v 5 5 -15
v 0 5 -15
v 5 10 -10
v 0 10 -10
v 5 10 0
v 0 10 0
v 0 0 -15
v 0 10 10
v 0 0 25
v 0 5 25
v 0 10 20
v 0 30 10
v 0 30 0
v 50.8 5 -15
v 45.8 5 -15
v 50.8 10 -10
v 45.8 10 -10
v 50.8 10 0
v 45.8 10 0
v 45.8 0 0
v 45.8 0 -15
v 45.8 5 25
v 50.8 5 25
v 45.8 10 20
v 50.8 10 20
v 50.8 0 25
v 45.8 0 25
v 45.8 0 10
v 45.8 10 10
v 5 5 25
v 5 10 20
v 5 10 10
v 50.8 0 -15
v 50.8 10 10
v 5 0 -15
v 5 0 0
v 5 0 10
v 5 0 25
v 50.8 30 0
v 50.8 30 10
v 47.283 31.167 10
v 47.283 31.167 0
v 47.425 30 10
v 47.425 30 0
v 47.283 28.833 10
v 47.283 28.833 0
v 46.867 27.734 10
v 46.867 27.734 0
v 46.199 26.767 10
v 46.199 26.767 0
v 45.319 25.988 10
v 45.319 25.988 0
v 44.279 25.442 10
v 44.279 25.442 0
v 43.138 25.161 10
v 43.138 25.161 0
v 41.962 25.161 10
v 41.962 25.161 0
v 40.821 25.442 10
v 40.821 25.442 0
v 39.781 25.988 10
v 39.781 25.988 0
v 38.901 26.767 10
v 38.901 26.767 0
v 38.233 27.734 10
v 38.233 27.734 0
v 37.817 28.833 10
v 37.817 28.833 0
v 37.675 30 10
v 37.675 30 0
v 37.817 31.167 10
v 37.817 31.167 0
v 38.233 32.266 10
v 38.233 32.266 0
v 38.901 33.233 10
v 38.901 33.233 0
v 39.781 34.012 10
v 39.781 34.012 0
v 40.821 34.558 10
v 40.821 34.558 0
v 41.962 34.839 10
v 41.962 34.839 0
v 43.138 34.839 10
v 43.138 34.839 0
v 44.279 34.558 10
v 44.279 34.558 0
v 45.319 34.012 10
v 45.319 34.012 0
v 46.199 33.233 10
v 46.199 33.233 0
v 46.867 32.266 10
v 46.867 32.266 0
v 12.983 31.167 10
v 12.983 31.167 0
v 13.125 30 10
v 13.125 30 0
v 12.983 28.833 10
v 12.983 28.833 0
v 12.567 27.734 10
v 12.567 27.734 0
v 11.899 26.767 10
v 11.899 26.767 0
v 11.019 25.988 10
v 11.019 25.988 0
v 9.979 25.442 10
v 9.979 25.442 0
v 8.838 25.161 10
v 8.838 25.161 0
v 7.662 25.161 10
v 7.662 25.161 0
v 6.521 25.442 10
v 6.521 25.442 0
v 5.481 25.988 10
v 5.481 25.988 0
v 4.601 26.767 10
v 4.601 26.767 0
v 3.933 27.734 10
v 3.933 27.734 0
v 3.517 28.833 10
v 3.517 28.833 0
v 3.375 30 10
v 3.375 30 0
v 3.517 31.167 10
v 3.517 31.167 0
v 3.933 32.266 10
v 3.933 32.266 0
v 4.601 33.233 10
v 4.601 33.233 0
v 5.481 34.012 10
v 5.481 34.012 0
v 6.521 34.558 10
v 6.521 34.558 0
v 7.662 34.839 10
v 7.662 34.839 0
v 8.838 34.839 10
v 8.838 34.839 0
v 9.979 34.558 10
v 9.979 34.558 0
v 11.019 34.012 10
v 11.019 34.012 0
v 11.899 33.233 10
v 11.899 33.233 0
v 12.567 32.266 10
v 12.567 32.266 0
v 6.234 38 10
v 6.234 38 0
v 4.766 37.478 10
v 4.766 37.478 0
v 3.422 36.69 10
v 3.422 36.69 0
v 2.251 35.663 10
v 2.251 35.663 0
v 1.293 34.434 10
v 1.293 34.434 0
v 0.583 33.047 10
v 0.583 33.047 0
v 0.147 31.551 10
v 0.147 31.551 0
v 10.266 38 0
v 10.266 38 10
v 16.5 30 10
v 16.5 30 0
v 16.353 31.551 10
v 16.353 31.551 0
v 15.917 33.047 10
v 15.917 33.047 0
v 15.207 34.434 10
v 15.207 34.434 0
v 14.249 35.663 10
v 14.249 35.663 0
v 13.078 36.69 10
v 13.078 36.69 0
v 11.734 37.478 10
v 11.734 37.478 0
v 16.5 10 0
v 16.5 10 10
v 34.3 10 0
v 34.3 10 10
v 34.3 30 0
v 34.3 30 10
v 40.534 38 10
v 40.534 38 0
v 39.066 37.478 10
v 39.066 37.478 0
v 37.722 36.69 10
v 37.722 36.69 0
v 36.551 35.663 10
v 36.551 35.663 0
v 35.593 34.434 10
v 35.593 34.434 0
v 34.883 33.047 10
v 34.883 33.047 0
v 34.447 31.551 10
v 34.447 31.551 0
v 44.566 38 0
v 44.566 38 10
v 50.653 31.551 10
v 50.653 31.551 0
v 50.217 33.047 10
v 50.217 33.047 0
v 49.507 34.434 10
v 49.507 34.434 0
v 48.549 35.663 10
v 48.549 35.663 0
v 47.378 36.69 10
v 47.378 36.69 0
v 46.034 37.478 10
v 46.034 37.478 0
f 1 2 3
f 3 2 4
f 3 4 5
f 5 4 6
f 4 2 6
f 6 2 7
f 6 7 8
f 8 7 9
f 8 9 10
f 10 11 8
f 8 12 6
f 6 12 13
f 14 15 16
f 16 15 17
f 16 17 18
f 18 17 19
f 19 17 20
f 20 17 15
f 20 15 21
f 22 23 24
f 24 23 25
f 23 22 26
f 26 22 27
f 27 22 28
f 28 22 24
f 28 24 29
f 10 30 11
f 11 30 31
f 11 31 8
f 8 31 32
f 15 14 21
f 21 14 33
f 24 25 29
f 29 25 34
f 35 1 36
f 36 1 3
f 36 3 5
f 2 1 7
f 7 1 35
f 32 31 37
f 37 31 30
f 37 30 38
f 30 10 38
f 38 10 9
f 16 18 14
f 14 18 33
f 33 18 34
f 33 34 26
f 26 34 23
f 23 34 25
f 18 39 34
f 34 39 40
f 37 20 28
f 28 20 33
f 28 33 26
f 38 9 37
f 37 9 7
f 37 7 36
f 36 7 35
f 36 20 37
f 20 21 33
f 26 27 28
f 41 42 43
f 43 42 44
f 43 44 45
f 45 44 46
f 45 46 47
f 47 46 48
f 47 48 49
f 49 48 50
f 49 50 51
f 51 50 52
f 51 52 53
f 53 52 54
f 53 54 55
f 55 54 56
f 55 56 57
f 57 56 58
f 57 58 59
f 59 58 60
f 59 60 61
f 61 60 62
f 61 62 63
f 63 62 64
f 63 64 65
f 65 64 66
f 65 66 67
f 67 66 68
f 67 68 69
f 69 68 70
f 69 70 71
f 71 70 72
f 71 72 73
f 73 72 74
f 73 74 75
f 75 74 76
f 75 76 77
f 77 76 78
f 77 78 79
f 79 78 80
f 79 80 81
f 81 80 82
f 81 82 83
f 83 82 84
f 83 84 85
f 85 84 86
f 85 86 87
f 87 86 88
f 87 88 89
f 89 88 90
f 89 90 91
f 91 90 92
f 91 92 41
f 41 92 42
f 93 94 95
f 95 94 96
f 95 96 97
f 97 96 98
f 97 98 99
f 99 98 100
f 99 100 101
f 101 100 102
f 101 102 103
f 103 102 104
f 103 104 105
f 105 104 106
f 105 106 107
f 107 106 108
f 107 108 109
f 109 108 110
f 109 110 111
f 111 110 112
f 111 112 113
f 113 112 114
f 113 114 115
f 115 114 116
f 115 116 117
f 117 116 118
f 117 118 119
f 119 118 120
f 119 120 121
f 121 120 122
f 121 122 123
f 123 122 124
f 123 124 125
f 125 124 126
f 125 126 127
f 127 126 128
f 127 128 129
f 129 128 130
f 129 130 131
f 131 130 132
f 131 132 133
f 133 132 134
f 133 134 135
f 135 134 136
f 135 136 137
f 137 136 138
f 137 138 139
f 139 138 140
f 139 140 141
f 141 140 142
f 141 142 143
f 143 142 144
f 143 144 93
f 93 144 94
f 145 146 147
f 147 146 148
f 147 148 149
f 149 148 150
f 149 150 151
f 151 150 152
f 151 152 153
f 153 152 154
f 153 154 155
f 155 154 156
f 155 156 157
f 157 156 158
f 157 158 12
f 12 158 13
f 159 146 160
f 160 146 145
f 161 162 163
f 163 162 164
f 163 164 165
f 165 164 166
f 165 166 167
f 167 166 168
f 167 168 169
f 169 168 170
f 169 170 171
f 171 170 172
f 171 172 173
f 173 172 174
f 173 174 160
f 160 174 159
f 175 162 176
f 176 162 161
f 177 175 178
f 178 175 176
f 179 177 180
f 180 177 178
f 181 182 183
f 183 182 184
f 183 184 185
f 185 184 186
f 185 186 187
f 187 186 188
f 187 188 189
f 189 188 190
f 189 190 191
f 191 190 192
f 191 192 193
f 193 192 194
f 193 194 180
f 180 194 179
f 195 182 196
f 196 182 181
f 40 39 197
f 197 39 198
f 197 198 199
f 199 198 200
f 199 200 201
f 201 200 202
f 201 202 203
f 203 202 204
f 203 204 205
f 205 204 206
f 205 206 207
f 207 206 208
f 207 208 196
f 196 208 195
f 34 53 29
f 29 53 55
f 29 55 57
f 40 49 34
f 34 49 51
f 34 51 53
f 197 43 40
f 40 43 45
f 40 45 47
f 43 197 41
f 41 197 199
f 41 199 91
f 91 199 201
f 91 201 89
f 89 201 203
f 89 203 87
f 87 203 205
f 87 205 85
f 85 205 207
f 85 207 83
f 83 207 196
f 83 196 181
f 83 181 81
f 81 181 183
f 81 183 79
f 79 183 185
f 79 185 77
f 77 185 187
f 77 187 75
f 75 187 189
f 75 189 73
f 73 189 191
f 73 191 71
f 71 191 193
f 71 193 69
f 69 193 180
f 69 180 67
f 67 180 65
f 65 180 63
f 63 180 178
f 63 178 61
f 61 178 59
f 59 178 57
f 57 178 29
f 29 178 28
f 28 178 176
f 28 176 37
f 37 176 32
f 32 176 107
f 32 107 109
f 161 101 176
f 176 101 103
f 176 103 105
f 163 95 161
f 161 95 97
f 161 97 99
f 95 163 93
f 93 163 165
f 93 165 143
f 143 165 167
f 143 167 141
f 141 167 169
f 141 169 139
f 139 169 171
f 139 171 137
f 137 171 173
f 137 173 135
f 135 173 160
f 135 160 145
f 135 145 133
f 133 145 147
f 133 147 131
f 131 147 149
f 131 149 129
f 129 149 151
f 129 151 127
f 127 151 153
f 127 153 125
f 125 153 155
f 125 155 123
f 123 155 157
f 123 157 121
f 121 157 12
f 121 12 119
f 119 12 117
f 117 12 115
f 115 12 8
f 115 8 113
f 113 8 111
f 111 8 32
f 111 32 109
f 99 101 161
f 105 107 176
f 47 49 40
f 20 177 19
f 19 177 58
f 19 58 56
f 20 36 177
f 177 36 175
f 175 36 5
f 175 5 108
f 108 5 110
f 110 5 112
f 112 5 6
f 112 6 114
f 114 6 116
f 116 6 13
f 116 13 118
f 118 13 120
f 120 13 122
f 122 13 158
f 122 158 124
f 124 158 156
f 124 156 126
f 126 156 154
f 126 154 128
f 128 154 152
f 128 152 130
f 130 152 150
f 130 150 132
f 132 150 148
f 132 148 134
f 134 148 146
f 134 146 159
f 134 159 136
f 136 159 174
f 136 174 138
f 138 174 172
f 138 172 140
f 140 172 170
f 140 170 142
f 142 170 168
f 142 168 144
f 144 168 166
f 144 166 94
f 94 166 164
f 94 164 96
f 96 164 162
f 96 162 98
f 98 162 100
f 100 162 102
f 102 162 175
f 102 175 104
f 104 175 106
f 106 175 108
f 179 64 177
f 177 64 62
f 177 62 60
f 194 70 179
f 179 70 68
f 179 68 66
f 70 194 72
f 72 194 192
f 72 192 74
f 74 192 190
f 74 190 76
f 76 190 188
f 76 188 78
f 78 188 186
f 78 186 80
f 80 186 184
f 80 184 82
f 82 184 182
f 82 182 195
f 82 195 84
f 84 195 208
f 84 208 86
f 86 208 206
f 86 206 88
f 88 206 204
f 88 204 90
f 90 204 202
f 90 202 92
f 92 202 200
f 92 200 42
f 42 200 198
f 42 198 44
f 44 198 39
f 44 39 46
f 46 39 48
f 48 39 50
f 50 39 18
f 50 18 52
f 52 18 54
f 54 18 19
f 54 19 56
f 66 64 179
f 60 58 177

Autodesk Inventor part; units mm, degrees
ref_plane "YZ Plane" through (0, 0, 0) normal (1, 0, 0) x (0, 1, 0)
ref_plane "XZ Plane" through (0, 0, 0) normal (0, 1, 0) x (-1, 0, 0)
sketch "Sketch1" plane through (0, 0, 0) normal (0, 0, 1) x (1, 0, 0)
  line L0 (0, 0) -> (50.8, 0)
  line L1 (50.8, 0) -> (50.8, 10)
  line L2 (0, 10) -> (0, 0)
  circle A0 centre (8.25, 30) radius 4.875
  arc A1 (16.5, 30) -> (0, 30) centre (8.25, 30) ccw
  line L3 (25.4, -5.1734) -> (25.4, 32.937)
  line L4 (0, 30) -> (0, 10)
  line L5 (16.5, 30) -> (16.5, 10)
  line L6 (50.8, 10) -> (16.5, 10)
  line L7 (0, 10) -> (0, 10)
  circle A2 centre (42.55, 30) radius 4.875
  arc A3 (50.8, 30) -> (34.3, 30) centre (42.55, 30) ccw
  line L8 (50.8, 30) -> (50.8, 10)
  line L9 (34.3, 30) -> (34.3, 10)
  line L10 (-14.5687, 38) -> (58.8919, 38)
  line L11 (58.8919, 38) -> (58.8919, 91.2703)
  line L12 (58.8919, 91.2703) -> (-14.5687, 91.2703)
  line L13 (-14.5687, 91.2703) -> (-14.5687, 38)
  point P0 (25.4, 0)
  point P1 (34.3, 10)
  point P2 (44.5656, 38)
  point P3 (40.5344, 38)
  point P4 (10.2656, 38)
  point P5 (6.2344, 38)
  dimension "d0" = 0
  dimension "d1" = 50.8
  dimension "d2" = 8.25
  dimension "d3" = 9.75
  dimension "d4" = 16.5
  dimension "d7" = 10
  dimension "d8" = 0
  dimension "d19" = 20
  dimension "d21" = 28
extrude "Extrusion1" add sketch "Sketch1" along normal blind 10 contours L2 L4 A1 L10 L5 L6 L3 L0 | L3 L6 L1 L0 | L6 L9 A3 L10 L8
ref_plane "Work Plane1" through (0, 0, 5) normal (0, 0, 1) x (1, 0, 0)
sketch "Sketch2" plane through (0, 0, 5) normal (0, 0, 1) x (1, 0, 0)
  line L0 (0, 0) -> (50.8, 0) projected
  line L1 (50.8, 0) -> (50.8, 30) projected
  arc A0 (50.8, 30) -> (44.5656, 38) centre (42.55, 30) ccw projected
  line L2 (34.3, 30) -> (34.3, 10) projected
  line L3 (34.3, 10) -> (16.5, 10) projected
  line L4 (16.5, 10) -> (16.5, 30) projected
  arc A1 (16.5, 30) -> (10.2656, 38) centre (8.25, 30) ccw projected
  line L5 (0, 30) -> (0, 0) projected
  circle A2 centre (42.55, 30) radius 4.875 projected
  circle A3 centre (8.25, 30) radius 4.875 projected
  line L6 (0, 0) -> (5, 0)
  line L7 (5, 0) -> (5, 10)
  line L8 (5, 10) -> (0, 10)
  line L9 (0, 10) -> (0, 0)
  line L10 (50.8, 0) -> (45.8, 0)
  line L11 (45.8, 0) -> (45.8, 10)
  line L12 (45.8, 10) -> (50.8, 10)
  line L13 (50.8, 10) -> (50.8, 0)
  line L14 (44.5656, 38) -> (40.5344, 38) projected
  arc A4 (40.5344, 38) -> (34.3, 30) centre (42.55, 30) ccw projected
  line L15 (10.2656, 38) -> (6.2344, 38) projected
  arc A5 (6.2344, 38) -> (0, 30) centre (8.25, 30) ccw projected
  dimension "d10" = 5
  dimension "d11" = 5
  dimension "d12" = 10
  dimension "d13" = 10
extrude "Extrusion2" add sketch "Sketch2" along normal mid plane 40 contours L5 L8 L7 L0 | L11 L12 L1 L0
chamfer "Chamfer1" distance 5 angle 45 4 edges at (2.5, 10, 25) (48.3, 10, 25) (48.3, 10, -15) (2.5, 10, -15)
equation "\"d2\" = 0.5 * Platform_GuideRod_OD"
equation "\"d4\" = Platform_GuideRod_OD"
equation "\"d7\" = Thick_Wall"
equation "\"d21\" = Sliding_Clearance + Actuator_Housing_W"
equation "\"d5\" = Thick_Wall"
equation "\"d11\" = d10"
equation "\"d12\" = Thick_Wall"
equation "\"d13\" = d12"
equation "\"d16\" = 0.5 * Thick_Wall"
equation "\"Platform_Width\" = 50.8"
equation "\"Platform_Length\" = 245"
equation "\"Guide_Hole_Offset\" = 13.51"
equation "\"Guide_Rod_Diameter\" = 6"
equation "\"Guide_Rod_Length\" = 304.8"
equation "\"Thin_Wall\" = 5"
equation "\"Thick_Wall\" = 10"
equation "\"Tabletop_Hole_Spacing\" = 25.4"
equation "\"Tabletop_Hole_Diameter\" = 6.35"
equation "\"Platform_Hole_Spacing\" = 25.4"
equation "\"Platform_Hole_Diameter\" = 6.35"
equation "\"Actuator_Housing_W\" = 26"
equation "\"Sliding_Clearance\" = 2"
equation "\"Platform_GuideRod_OD\" = 16.5"
equation "\"d9\" = -0.5 * Thick_Wall"
properties part number "Guide Rod Support"
